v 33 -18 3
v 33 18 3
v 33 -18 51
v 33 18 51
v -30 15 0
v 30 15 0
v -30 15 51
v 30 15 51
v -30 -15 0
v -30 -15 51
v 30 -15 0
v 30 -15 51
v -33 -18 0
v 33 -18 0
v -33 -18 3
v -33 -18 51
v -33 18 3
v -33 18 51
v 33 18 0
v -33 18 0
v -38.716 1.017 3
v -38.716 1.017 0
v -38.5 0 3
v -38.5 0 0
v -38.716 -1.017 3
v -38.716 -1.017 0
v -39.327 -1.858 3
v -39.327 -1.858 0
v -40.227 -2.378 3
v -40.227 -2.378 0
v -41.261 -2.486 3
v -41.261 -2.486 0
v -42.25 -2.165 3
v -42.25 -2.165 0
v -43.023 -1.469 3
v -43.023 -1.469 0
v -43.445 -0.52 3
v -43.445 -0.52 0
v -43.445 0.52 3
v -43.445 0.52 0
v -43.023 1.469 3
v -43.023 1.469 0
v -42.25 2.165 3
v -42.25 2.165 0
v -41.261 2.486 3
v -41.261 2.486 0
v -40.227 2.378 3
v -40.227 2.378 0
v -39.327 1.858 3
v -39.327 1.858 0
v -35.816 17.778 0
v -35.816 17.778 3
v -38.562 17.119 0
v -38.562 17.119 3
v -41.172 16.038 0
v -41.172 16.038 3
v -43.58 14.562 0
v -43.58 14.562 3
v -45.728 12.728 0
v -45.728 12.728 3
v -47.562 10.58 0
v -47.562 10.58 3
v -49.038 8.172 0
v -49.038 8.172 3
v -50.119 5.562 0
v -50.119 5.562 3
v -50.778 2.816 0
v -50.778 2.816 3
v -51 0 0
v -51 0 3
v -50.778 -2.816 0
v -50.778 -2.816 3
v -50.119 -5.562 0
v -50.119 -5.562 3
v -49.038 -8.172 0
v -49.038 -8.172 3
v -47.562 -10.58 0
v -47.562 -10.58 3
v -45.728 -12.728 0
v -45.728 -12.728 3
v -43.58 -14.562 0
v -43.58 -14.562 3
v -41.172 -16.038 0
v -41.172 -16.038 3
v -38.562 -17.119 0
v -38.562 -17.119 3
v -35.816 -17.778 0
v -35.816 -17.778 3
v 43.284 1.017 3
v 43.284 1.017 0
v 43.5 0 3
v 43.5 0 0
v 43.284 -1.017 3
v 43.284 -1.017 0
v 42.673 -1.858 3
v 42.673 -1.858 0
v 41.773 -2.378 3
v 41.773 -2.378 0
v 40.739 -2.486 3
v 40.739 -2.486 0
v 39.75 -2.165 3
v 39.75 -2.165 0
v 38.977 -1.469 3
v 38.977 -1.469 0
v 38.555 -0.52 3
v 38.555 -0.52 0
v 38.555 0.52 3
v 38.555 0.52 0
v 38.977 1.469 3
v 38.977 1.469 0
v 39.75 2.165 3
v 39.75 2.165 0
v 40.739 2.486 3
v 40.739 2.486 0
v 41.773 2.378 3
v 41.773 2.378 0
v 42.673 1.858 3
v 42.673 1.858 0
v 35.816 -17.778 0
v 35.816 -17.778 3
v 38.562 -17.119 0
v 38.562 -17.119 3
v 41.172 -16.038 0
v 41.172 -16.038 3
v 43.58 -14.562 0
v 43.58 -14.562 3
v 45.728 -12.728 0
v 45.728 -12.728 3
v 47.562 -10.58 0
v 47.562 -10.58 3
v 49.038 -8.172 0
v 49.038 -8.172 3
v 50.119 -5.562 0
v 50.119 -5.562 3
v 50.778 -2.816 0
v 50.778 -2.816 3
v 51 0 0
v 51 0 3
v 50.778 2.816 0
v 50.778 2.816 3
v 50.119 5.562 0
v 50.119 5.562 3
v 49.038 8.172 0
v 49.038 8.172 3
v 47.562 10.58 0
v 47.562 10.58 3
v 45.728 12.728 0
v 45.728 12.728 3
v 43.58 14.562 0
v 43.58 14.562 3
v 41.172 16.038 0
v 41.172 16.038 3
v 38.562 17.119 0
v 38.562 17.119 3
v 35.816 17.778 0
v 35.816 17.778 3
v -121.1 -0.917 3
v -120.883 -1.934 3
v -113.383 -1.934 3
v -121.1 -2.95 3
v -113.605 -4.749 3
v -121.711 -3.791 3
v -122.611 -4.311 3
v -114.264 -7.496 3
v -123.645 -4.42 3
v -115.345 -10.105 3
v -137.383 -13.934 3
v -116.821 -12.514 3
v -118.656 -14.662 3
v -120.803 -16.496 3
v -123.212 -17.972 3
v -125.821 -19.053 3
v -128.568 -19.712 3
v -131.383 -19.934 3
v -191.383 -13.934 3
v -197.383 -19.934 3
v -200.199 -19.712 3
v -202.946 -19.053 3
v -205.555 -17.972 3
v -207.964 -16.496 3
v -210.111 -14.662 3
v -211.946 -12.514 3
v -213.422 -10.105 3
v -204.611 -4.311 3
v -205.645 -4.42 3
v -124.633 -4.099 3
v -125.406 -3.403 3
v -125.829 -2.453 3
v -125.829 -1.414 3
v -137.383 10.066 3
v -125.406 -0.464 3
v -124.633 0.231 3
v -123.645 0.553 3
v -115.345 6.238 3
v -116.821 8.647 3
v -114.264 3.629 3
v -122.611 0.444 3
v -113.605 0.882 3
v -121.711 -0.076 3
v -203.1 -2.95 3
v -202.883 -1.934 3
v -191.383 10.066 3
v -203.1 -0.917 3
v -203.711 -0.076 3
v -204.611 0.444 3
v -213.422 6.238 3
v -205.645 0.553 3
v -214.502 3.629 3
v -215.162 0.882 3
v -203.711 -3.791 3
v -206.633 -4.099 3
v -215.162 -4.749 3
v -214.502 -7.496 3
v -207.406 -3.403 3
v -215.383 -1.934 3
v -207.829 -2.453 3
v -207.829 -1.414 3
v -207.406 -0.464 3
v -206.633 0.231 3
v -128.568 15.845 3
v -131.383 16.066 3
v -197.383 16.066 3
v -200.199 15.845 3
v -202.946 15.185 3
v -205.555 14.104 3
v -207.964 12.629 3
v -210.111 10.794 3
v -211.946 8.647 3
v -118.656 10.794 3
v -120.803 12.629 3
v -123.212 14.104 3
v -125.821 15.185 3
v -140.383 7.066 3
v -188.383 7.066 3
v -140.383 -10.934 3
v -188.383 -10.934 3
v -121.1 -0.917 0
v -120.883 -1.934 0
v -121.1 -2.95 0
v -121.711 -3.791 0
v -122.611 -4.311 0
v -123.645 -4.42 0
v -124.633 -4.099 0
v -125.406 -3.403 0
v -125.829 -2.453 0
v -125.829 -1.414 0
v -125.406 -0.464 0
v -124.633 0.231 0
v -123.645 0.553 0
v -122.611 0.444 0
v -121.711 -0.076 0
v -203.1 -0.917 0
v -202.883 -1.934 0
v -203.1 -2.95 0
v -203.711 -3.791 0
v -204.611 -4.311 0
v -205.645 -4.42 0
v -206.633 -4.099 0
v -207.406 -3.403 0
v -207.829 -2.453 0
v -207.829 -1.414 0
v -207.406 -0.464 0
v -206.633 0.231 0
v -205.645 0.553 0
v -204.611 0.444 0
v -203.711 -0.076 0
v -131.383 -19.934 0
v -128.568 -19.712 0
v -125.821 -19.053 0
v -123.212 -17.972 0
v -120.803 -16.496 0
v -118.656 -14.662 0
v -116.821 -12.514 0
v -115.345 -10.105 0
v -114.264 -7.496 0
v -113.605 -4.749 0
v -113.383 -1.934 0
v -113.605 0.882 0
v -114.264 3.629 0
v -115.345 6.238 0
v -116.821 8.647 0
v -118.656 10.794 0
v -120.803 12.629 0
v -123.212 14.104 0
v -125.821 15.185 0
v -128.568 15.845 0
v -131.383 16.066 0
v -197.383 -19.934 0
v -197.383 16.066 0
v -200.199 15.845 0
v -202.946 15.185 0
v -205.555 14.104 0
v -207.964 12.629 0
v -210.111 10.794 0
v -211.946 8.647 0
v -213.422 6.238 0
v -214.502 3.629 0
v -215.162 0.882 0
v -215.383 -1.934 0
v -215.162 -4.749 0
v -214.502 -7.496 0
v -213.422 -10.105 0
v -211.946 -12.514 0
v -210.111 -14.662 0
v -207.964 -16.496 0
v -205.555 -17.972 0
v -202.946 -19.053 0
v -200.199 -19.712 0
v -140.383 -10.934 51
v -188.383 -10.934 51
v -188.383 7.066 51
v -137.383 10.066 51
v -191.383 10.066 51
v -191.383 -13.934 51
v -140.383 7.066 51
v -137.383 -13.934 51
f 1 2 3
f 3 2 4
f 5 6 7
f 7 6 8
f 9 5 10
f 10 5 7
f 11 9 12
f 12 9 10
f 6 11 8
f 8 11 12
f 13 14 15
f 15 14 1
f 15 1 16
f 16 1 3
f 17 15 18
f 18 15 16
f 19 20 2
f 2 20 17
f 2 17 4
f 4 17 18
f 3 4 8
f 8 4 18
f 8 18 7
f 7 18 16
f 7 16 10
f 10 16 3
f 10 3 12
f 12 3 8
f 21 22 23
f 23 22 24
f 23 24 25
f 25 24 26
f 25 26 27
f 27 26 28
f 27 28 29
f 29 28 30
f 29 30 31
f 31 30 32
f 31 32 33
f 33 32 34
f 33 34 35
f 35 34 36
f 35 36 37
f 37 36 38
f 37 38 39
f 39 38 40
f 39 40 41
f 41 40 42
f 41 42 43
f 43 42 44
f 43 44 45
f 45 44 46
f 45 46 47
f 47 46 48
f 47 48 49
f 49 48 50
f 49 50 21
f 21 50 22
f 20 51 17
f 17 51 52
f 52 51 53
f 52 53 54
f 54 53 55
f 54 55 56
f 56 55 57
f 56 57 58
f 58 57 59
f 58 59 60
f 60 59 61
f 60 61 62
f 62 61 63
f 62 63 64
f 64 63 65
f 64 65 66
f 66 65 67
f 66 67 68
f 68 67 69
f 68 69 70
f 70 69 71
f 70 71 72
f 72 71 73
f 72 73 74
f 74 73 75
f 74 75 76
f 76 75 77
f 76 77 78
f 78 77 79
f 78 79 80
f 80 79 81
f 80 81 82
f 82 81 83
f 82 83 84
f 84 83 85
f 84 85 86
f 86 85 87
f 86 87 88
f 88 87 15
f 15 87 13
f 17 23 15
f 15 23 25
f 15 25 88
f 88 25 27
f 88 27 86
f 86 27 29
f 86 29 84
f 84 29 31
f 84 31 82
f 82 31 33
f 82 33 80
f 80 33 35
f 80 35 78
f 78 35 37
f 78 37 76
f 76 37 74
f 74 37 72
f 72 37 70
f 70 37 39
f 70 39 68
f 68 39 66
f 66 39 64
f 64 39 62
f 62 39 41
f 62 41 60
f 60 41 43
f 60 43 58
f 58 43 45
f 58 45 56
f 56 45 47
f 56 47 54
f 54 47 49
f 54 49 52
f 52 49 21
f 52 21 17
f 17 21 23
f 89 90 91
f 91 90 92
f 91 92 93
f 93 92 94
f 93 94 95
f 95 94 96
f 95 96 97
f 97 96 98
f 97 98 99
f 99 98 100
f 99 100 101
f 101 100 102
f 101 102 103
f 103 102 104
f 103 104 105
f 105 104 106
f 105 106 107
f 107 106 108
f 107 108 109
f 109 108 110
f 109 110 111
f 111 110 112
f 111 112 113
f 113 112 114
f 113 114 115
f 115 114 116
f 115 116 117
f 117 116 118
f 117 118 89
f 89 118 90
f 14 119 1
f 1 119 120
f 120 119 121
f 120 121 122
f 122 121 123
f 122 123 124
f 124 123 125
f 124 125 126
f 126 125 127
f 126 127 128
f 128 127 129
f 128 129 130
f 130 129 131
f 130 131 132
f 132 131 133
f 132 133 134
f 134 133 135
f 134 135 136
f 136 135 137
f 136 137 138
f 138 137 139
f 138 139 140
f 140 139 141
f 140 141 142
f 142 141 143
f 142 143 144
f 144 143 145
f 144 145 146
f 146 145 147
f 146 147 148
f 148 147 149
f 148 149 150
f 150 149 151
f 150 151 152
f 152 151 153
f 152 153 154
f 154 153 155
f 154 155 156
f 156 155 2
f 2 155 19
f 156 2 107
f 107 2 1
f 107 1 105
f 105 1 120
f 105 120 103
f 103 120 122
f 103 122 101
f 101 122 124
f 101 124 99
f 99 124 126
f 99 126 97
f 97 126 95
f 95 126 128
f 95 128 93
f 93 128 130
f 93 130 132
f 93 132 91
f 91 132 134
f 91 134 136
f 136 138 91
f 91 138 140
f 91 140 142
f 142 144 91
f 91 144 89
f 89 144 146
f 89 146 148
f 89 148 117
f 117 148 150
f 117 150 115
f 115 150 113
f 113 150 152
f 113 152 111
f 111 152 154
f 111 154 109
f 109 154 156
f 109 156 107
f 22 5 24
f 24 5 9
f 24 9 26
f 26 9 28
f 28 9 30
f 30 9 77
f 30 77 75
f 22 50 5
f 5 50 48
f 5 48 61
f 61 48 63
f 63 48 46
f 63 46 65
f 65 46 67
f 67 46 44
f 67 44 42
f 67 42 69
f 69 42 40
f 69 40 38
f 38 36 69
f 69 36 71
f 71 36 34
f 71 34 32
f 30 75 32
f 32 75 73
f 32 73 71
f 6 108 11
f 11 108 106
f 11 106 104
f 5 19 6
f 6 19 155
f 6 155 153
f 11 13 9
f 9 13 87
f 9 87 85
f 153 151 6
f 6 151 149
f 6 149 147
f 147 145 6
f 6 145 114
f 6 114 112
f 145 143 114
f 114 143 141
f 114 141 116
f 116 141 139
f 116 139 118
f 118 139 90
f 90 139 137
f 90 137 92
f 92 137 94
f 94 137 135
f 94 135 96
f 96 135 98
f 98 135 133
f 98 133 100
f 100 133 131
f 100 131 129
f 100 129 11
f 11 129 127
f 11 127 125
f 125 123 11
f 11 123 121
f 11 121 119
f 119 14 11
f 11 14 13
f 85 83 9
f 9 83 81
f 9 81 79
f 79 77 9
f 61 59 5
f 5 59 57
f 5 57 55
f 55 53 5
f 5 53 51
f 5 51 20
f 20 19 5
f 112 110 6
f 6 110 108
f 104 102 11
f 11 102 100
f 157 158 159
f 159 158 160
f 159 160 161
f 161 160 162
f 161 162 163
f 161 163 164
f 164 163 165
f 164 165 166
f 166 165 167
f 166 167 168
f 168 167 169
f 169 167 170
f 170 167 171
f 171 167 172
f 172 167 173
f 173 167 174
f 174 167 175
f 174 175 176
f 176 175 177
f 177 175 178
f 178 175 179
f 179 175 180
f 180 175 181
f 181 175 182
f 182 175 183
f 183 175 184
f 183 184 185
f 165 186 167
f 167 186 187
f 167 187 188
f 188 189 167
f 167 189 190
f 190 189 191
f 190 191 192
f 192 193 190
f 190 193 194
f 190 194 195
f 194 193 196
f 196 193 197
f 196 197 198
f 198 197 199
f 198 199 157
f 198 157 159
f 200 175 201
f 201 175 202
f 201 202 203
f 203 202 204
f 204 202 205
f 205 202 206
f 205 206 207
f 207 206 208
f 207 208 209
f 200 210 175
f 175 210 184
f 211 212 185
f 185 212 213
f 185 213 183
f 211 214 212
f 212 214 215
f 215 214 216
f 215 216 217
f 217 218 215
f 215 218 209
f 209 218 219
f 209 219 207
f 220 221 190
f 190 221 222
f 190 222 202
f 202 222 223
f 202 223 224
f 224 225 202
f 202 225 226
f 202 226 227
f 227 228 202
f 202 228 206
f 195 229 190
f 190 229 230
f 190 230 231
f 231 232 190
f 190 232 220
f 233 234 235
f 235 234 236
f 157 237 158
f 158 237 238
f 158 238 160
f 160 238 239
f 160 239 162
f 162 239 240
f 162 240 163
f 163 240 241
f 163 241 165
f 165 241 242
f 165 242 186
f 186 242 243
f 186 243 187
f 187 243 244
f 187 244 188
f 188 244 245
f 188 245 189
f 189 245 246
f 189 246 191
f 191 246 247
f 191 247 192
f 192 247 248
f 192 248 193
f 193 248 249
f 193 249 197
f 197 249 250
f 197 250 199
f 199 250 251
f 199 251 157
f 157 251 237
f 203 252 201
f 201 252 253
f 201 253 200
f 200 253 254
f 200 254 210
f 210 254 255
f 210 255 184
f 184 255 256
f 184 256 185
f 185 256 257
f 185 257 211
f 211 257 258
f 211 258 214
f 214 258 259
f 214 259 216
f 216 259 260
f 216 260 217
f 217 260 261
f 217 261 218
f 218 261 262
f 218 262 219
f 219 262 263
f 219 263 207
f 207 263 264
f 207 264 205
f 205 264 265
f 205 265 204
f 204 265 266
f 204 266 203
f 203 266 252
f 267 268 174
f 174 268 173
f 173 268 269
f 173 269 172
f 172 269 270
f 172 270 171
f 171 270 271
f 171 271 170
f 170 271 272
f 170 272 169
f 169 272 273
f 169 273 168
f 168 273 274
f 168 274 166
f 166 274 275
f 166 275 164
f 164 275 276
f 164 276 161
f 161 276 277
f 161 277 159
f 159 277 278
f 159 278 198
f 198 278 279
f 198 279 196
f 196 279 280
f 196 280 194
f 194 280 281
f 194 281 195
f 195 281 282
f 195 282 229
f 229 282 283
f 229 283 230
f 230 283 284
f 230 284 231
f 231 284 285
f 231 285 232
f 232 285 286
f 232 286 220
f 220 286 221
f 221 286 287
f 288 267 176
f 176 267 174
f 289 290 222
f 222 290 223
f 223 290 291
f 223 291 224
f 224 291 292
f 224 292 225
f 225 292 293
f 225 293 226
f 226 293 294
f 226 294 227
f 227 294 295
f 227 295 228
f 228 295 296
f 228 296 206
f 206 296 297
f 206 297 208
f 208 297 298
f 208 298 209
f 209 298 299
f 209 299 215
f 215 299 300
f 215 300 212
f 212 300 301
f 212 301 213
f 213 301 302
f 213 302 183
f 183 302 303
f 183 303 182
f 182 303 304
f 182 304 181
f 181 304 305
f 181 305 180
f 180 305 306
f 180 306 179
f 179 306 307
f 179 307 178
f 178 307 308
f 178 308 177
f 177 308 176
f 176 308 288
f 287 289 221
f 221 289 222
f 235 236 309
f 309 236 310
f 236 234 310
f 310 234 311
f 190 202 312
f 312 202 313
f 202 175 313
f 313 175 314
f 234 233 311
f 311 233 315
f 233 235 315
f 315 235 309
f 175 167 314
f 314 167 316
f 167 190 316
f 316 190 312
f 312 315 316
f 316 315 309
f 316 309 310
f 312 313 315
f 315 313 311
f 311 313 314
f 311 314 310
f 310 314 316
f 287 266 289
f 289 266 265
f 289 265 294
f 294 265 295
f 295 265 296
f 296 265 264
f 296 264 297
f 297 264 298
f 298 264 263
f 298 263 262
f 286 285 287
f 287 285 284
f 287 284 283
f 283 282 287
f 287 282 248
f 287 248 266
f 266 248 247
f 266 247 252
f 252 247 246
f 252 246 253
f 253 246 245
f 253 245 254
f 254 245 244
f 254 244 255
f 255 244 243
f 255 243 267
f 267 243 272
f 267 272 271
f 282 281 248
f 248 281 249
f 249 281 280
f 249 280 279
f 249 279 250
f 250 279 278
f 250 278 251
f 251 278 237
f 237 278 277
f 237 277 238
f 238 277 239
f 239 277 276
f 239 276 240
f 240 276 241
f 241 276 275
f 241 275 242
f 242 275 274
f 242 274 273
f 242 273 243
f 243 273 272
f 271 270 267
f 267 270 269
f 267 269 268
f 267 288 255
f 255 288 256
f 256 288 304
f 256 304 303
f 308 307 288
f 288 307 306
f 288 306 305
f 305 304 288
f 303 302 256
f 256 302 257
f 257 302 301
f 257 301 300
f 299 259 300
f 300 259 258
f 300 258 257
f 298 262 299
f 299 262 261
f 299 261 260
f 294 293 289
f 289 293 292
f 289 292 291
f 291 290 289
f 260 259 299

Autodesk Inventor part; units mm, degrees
ref_plane "YZ Plane" through (0, 0, 0) normal (1, 0, 0) x (0, 1, 0)
ref_plane "XZ Plane" through (0, 0, 0) normal (0, 1, 0) x (-1, 0, 0)
ref_plane "XY Plane" through (0, 0, 0) normal (0, 0, 1) x (1, 0, 0)
sketch "outer mould sketch" plane through (0, 0, 0) normal (0, 0, 1) x (1, 0, 0)
  line L0 (30, 15) -> (-30, 15)
  line L1 (-30, 15) -> (-30, -15)
  line L2 (-30, -15) -> (30, -15)
  line L3 (30, -15) -> (30, 15)
  line L4 (-27, 12) -> (27, 12)
  line L5 (27, 12) -> (27, -12)
  line L6 (27, -12) -> (-27, -12)
  line L7 (-27, -12) -> (-27, 12)
  line L8 (-33, 18) -> (33, 18)
  line L9 (33, 18) -> (33, -18)
  line L10 (33, -18) -> (-33, -18)
  line L11 (-33, -18) -> (-33, 18)
  arc A0 (-33, 18) -> (-33, -18) centre (-33, 0) ccw
  circle A1 centre (-41, 0) radius 2.5
  line L12 (0, -18) -> (0, 18) construction
  arc A2 (33, -18) -> (33, 18) centre (33, 0) ccw
  circle A3 centre (41, 0) radius 2.5
  dimension "d15" = 30
  dimension "d16" = 60
  dimension "d17" = 3
  dimension "d18" = 3
  dimension "d19" = 18
  dimension "d20" = 5
  dimension "d21" = 8
  dimension "d22" = 36
  dimension "d24" = 66
  dimension "d25" = 36
extrude "Extrusion1" add sketch "outer mould sketch" along normal blind 3 contours L11 A0 | A2 L9
extrude "Extrusion2" add sketch "outer mould sketch" along normal blind 51 contours L8 L9 L10 L11
sketch "Sketch5" plane through (0, 0, 0) normal (0, 0, 1) x (1, 0, 0)
  line L0 (-134.3835, 13.0664) -> (-194.3835, 13.0664)
  line L1 (-194.3835, 13.0664) -> (-194.3835, -16.9336)
  line L2 (-194.3835, -16.9336) -> (-134.3835, -16.9336)
  line L3 (-134.3835, -16.9336) -> (-134.3835, 13.0664)
  line L4 (-191.3835, 10.0664) -> (-137.3835, 10.0664)
  line L5 (-137.3835, 10.0664) -> (-137.3835, -13.9336)
  line L6 (-137.3835, -13.9336) -> (-191.3835, -13.9336)
  line L7 (-191.3835, -13.9336) -> (-191.3835, 10.0664)
  line L8 (-197.3835, 16.0664) -> (-131.3835, 16.0664)
  line L9 (-131.3835, 16.0664) -> (-131.3835, -19.9336)
  line L10 (-131.3835, -19.9336) -> (-197.3835, -19.9336)
  line L11 (-197.3835, -19.9336) -> (-197.3835, 16.0664)
  arc A0 (-197.3835, 16.0664) -> (-197.3835, -19.9336) centre (-197.3835, -1.9336) ccw
  circle A1 centre (-41.0005, 0) radius 2.5
  line L12 (-164.3835, -19.9336) -> (-164.3835, 16.0664) construction
  arc A2 (-131.3835, -19.9336) -> (-131.3835, 16.0664) centre (-131.3835, -1.9336) ccw
  circle A3 centre (41, 0) radius 2.5
  line L13 (-197.3835, -1.9336) -> (-215.3835, -1.9336) construction
  circle A4 centre (-205.3835, -1.9336) radius 2.5
  circle A5 centre (-123.3835, -1.9336) radius 2.5
  line L14 (-140.3835, 7.0664) -> (-188.3835, 7.0664)
  line L15 (-188.3835, 7.0664) -> (-188.3835, -10.9336)
  line L16 (-188.3835, -10.9336) -> (-140.3835, -10.9336)
  line L17 (-140.3835, -10.9336) -> (-140.3835, 7.0664)
  point P0 (0, 0)
  dimension "d26" = 30
  dimension "d27" = 60
  dimension "d28" = 3
  dimension "d29" = 3
  dimension "d30" = 18
  dimension "d31" = 5
  dimension "d32" = 156.383
  dimension "d33" = 36
  dimension "d34" = 66
  dimension "d35" = 36
  dimension "d36" = 5
  dimension "d37" = 8
  dimension "d42" = 3
extrude "Extrusion5" add sketch "Sketch5" along normal blind 51 separate body contours L4 L5 L6 L7
extrude "Extrusion4" add sketch "Sketch5" along normal blind 3 contours L3 L2 L1 L0 | L4 L5 L6 L7 | L8 L9 L10 L11 | L11 A0 | A2 L9 | L17 L16 L15 L14 bodies 2
properties part number "single_chamber_EIT_test"
